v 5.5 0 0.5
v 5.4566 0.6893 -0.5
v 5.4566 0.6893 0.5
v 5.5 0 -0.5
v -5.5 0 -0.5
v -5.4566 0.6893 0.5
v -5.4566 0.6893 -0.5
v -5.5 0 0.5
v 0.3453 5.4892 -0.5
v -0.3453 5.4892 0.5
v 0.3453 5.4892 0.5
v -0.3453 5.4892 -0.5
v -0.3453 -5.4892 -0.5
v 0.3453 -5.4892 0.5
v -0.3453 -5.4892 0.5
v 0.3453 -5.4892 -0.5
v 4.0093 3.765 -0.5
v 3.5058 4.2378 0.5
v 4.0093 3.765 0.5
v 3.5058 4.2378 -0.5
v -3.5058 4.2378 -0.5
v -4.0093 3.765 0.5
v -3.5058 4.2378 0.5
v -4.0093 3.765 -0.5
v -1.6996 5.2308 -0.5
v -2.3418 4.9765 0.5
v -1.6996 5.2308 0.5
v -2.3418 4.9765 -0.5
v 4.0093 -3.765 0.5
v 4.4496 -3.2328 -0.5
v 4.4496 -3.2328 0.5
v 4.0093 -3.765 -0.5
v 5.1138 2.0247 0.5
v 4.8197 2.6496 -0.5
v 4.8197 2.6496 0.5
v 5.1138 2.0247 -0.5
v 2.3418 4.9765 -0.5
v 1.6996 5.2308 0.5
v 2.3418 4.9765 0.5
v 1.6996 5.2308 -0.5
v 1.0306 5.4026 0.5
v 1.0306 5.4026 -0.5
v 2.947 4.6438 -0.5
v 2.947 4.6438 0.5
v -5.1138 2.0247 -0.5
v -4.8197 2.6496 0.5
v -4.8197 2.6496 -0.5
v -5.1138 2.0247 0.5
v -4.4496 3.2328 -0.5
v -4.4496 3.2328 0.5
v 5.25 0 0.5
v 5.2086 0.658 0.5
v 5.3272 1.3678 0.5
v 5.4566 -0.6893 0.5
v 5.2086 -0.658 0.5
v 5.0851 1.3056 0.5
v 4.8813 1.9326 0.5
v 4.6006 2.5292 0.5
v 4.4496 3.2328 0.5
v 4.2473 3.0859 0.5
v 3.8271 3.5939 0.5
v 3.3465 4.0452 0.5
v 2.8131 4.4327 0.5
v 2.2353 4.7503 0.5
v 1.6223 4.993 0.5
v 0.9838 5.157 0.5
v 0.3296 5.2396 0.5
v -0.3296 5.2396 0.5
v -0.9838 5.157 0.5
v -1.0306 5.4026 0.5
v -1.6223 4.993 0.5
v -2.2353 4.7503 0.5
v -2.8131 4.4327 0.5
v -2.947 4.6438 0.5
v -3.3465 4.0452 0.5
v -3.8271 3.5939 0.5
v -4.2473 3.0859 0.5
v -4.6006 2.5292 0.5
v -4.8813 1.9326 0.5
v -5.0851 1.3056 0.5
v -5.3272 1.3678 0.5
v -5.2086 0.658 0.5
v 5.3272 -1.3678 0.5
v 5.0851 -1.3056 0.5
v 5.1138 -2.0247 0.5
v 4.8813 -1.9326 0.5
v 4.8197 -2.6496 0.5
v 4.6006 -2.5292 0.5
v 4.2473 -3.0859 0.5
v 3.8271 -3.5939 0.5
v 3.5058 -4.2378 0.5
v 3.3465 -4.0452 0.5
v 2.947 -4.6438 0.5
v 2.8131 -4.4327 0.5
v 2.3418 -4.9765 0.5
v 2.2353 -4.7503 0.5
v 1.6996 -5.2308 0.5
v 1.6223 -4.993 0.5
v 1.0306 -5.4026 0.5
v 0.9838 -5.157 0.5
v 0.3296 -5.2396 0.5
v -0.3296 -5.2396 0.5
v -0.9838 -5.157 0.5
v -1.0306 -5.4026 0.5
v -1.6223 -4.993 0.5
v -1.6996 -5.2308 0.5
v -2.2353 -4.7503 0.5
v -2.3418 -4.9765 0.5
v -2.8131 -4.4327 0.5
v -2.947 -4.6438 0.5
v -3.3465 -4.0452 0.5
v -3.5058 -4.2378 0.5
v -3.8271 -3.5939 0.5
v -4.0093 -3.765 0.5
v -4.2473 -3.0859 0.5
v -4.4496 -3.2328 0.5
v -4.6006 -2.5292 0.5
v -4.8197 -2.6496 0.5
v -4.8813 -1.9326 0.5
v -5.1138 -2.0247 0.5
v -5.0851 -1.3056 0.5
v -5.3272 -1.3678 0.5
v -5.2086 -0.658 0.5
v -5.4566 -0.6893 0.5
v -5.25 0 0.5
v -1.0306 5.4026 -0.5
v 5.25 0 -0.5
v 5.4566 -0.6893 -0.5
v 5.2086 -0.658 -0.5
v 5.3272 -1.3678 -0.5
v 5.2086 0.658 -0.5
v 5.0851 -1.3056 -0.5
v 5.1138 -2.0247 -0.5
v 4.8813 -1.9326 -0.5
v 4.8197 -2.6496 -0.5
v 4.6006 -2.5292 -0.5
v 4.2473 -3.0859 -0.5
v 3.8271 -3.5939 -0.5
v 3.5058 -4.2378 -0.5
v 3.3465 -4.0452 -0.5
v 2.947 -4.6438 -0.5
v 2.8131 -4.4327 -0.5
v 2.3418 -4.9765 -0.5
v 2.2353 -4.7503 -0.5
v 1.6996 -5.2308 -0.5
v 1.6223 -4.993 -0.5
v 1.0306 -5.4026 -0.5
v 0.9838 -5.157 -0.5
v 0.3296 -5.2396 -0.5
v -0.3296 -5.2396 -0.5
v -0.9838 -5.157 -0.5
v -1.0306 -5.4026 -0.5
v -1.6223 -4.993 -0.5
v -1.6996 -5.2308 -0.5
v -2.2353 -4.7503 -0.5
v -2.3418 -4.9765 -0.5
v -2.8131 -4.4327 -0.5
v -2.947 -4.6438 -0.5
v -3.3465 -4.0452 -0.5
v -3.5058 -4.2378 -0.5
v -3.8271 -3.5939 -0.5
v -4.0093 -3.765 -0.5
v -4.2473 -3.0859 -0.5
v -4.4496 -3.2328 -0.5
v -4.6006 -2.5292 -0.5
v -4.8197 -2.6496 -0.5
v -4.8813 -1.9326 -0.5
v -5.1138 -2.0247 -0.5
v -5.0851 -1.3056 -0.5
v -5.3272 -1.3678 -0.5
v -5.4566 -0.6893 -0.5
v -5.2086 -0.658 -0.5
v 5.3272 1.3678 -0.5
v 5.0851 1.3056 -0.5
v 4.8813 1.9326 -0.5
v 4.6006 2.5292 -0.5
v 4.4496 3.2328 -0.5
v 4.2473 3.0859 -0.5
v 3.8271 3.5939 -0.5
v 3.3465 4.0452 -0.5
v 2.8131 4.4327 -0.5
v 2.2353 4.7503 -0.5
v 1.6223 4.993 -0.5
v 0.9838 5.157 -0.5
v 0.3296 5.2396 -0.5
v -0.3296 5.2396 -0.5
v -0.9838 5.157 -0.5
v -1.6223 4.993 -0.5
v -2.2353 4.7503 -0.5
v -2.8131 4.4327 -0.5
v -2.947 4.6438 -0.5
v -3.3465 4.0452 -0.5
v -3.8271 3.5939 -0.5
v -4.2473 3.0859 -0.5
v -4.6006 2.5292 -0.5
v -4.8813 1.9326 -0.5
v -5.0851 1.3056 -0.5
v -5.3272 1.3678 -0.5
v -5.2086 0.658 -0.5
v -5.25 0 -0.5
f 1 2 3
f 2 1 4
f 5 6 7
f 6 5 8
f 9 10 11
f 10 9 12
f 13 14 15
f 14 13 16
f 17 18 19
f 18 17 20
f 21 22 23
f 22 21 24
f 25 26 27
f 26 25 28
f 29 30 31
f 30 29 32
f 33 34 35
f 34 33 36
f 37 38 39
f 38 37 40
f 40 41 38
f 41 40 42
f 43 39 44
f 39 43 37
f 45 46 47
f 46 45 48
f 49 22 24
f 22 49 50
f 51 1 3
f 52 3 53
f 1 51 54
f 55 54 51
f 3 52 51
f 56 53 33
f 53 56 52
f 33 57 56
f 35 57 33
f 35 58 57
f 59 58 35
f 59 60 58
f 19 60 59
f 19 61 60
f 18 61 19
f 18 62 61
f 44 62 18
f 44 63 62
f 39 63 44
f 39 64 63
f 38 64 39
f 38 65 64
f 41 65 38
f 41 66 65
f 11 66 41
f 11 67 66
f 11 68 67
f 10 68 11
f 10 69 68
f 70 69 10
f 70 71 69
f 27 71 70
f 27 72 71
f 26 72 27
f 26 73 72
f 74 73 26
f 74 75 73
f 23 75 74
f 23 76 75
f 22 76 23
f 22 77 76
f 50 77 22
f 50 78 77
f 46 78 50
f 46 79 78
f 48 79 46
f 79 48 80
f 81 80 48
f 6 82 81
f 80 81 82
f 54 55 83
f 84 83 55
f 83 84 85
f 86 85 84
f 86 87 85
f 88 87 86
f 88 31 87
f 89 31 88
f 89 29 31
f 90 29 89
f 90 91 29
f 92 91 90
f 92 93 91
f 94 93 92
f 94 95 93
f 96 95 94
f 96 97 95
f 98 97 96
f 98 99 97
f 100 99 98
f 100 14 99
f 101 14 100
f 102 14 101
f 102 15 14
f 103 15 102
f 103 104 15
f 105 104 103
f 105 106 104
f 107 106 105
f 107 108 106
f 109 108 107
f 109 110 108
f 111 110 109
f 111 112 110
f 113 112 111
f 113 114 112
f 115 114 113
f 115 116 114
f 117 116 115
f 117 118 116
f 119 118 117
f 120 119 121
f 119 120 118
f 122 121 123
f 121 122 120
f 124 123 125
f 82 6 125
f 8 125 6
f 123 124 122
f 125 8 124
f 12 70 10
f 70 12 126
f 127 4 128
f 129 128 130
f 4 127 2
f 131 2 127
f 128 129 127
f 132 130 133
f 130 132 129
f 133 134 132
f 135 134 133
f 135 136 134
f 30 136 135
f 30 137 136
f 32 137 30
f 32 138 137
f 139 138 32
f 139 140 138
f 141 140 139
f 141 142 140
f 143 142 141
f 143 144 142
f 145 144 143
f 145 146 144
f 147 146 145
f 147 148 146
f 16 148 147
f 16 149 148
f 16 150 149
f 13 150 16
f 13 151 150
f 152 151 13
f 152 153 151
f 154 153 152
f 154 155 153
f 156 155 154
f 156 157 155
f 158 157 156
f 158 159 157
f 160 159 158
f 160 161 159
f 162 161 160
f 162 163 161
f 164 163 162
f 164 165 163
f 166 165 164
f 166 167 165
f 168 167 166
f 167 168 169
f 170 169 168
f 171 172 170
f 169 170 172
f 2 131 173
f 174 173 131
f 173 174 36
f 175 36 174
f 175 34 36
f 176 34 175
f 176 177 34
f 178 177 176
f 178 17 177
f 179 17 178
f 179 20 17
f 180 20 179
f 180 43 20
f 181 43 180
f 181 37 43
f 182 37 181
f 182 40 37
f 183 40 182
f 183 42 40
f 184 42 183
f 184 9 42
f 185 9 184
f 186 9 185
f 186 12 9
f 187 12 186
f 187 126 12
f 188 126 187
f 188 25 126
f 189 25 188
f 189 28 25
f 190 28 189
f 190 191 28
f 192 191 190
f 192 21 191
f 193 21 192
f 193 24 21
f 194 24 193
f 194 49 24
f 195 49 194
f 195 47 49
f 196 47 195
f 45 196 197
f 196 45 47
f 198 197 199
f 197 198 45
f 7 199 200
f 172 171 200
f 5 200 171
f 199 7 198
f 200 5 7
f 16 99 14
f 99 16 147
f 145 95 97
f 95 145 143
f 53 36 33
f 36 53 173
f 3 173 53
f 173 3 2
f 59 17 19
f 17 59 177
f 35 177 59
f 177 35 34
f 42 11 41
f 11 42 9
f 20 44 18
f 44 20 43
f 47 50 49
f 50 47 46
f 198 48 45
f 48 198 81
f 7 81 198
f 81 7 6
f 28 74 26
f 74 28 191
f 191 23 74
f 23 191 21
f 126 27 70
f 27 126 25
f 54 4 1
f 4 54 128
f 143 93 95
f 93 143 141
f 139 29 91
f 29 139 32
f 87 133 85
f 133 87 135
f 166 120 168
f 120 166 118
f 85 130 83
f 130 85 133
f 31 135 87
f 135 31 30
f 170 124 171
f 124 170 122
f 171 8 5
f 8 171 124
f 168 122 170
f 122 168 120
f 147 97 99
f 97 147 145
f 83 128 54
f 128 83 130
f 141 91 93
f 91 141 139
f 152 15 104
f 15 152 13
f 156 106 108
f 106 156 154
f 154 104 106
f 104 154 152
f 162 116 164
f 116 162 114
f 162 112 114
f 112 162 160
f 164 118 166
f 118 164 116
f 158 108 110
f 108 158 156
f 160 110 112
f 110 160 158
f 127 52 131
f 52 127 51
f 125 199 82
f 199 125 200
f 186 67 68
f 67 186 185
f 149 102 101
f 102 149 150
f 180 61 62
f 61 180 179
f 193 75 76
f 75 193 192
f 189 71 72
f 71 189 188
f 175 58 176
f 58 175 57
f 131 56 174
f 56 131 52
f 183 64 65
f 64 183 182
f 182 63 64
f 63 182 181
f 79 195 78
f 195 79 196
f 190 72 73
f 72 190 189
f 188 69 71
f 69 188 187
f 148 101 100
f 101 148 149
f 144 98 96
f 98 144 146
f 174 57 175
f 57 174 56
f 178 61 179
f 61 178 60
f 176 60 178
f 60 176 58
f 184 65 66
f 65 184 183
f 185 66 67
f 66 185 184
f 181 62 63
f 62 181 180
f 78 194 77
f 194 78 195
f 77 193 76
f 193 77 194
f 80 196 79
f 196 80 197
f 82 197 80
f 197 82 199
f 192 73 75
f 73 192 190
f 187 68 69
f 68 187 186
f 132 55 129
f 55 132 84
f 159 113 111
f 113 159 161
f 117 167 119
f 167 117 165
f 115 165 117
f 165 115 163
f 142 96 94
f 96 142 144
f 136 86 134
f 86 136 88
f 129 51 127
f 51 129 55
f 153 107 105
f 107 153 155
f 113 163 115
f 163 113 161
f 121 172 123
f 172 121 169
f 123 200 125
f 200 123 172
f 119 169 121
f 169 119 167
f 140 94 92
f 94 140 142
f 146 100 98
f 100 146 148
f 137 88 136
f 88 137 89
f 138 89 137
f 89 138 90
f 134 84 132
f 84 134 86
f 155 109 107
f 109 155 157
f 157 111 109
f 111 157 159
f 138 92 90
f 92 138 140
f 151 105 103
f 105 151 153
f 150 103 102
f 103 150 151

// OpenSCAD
$fn = 50;


difference() {
	union() {
		translate(v = [0, 0, -0.5000000000]) {
			cylinder(h = 1, r = 5.5000000000);
		}
	}
	union() {
		translate(v = [0, 0, -100.0000000000]) {
			cylinder(h = 200, r = 5.2500000000);
		}
	}
}
